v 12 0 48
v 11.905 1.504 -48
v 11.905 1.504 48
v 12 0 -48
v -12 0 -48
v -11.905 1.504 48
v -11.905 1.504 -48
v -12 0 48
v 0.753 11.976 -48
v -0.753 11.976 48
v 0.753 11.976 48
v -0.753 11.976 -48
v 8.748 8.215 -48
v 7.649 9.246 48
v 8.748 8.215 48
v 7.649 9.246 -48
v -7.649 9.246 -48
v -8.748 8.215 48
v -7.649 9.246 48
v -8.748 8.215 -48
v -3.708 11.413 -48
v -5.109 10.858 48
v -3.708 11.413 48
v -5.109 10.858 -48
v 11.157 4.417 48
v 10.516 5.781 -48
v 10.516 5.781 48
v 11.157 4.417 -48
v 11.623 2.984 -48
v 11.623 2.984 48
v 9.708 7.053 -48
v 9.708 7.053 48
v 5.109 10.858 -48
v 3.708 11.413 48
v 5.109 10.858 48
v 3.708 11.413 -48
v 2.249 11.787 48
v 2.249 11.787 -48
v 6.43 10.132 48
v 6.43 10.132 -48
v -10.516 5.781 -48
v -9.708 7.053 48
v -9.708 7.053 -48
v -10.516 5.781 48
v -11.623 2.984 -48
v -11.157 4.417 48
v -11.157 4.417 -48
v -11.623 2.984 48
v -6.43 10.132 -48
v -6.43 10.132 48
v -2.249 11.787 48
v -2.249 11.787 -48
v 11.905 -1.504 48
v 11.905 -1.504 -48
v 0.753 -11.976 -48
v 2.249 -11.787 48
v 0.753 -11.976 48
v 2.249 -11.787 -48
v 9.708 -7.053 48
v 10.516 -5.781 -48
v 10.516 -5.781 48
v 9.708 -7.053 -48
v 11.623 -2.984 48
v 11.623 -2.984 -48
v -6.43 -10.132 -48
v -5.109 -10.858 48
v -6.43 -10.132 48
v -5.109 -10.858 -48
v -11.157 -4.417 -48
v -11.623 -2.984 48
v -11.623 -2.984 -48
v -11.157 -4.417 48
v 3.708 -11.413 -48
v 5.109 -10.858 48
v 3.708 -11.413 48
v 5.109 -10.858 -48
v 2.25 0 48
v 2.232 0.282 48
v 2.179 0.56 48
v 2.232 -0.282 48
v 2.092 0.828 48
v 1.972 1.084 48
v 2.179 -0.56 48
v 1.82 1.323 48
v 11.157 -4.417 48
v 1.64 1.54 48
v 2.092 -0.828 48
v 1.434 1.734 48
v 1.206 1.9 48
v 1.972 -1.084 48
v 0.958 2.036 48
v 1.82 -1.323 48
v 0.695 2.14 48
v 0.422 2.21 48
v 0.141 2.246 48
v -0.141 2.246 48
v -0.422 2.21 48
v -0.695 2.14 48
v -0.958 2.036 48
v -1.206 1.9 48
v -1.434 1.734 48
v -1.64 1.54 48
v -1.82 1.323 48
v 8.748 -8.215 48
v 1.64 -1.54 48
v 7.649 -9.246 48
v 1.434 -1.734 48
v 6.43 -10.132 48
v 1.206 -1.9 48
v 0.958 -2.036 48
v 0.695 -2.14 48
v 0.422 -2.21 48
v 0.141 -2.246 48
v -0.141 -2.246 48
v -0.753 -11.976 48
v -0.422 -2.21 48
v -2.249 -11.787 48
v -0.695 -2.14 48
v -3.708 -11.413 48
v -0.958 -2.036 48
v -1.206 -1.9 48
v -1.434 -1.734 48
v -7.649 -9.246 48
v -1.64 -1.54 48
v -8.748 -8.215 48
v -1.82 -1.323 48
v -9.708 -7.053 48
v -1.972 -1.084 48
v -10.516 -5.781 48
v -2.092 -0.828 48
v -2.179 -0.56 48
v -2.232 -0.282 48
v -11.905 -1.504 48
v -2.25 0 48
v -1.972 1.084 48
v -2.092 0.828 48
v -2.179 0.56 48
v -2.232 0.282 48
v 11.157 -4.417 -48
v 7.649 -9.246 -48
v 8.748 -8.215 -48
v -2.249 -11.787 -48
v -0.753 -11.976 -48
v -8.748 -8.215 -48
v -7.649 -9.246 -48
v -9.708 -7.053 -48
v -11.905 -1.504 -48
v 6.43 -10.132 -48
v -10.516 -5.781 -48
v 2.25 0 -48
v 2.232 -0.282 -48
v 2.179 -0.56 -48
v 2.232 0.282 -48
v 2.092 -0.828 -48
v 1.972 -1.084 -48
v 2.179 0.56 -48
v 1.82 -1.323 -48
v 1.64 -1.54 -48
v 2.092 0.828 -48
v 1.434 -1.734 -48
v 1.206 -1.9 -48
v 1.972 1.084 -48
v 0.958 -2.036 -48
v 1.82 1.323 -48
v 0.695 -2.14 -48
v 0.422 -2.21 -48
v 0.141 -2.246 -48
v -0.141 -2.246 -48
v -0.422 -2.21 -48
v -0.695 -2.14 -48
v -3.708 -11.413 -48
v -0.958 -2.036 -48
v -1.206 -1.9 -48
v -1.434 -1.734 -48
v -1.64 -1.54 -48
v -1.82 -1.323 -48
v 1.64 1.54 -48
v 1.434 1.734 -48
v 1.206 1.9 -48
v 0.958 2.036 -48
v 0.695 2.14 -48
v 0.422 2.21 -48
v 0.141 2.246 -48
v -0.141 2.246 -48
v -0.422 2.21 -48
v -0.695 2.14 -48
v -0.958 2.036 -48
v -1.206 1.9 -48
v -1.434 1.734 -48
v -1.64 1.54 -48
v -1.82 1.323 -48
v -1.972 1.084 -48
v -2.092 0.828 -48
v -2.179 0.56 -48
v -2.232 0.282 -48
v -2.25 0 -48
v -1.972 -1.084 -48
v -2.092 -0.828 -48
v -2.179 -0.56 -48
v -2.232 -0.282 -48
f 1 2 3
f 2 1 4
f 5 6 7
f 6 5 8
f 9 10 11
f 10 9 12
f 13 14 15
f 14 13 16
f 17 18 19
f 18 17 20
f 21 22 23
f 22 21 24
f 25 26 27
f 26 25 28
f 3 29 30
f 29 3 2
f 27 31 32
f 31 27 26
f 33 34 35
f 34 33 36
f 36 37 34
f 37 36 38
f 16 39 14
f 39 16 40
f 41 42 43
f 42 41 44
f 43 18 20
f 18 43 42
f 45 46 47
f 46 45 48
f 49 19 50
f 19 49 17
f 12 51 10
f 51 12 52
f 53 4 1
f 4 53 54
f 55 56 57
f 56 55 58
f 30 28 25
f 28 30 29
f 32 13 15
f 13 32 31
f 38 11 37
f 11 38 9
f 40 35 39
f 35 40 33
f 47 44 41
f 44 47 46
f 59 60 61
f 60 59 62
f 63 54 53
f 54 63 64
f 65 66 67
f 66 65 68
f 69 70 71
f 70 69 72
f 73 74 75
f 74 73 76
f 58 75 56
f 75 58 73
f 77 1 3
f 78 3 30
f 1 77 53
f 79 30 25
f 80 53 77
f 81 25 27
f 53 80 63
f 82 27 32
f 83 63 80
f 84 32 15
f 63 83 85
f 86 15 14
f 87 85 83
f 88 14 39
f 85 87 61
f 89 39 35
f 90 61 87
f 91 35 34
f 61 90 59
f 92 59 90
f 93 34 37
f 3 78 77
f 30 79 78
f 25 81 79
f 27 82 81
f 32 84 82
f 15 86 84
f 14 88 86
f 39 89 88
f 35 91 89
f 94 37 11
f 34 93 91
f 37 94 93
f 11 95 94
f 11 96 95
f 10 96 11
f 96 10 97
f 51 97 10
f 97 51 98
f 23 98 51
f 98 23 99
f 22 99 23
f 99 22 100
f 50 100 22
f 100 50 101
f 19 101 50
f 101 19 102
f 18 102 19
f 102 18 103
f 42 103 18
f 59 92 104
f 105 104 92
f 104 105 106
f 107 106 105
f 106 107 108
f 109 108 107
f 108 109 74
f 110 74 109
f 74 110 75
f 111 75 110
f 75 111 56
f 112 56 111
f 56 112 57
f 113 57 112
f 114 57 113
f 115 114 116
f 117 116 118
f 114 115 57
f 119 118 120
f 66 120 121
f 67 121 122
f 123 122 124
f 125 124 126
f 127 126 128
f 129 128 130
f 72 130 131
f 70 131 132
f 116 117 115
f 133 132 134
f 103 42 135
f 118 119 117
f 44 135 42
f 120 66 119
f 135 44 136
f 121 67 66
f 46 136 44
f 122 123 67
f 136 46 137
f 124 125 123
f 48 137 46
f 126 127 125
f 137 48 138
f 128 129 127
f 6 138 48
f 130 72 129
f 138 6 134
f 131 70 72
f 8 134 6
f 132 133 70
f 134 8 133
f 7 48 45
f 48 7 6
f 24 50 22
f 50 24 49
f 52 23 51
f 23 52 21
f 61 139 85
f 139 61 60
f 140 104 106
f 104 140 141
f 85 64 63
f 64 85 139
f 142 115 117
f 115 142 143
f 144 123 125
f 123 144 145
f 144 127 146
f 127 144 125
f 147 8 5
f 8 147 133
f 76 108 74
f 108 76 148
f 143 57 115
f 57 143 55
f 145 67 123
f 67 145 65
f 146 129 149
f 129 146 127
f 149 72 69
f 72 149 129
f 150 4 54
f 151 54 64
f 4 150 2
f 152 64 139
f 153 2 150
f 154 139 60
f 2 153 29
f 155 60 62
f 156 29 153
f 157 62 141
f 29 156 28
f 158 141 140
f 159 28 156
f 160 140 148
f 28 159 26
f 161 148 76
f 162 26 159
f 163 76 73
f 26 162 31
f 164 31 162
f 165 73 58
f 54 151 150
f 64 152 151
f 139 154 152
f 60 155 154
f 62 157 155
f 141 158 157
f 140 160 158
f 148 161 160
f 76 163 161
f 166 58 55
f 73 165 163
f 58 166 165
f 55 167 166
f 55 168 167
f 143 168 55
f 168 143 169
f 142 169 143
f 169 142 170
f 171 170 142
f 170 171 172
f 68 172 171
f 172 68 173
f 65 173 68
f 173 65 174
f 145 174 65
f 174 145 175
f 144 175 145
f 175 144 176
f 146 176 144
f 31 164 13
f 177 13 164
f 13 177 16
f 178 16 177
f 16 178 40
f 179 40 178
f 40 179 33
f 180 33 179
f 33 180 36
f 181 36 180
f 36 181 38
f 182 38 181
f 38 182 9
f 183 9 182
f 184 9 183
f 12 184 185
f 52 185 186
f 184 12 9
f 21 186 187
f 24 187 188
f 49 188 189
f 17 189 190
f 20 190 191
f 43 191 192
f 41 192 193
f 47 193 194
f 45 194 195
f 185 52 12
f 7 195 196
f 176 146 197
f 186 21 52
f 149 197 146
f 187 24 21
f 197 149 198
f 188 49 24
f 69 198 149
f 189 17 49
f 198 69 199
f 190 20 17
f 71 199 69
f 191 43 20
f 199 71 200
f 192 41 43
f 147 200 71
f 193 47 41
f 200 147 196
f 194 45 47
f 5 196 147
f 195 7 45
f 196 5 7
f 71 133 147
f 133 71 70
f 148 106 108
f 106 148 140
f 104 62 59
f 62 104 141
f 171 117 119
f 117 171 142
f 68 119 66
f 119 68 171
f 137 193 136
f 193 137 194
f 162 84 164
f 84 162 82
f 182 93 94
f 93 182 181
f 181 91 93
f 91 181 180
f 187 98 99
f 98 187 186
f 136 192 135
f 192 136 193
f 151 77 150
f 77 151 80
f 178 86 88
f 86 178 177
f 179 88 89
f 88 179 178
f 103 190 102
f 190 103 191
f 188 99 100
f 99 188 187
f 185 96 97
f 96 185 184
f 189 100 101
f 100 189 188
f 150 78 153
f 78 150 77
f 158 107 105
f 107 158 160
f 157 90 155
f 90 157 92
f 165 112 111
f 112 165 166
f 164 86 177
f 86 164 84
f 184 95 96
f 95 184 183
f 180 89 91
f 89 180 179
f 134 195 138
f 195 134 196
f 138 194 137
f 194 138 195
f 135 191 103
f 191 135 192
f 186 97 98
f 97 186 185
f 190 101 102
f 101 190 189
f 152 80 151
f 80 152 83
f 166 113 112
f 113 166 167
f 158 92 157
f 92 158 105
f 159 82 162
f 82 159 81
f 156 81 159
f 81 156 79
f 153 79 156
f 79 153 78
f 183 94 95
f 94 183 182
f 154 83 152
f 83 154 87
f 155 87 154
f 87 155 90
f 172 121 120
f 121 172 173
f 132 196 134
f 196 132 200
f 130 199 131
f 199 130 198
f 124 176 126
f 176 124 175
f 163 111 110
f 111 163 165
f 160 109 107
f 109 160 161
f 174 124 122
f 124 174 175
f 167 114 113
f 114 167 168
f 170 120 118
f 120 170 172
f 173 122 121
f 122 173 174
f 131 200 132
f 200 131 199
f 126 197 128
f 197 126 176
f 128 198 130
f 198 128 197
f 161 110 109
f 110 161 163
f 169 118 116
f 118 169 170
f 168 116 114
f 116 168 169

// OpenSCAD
$fn = 50;


difference() {
	union() {
		translate(v = [0, 0, -48.0000000000]) {
			cylinder(h = 96, r = 12.0000000000);
		}
	}
	union() {
		translate(v = [0, 0, -100.0000000000]) {
			cylinder(h = 200, r = 2.2500000000);
		}
	}
}
